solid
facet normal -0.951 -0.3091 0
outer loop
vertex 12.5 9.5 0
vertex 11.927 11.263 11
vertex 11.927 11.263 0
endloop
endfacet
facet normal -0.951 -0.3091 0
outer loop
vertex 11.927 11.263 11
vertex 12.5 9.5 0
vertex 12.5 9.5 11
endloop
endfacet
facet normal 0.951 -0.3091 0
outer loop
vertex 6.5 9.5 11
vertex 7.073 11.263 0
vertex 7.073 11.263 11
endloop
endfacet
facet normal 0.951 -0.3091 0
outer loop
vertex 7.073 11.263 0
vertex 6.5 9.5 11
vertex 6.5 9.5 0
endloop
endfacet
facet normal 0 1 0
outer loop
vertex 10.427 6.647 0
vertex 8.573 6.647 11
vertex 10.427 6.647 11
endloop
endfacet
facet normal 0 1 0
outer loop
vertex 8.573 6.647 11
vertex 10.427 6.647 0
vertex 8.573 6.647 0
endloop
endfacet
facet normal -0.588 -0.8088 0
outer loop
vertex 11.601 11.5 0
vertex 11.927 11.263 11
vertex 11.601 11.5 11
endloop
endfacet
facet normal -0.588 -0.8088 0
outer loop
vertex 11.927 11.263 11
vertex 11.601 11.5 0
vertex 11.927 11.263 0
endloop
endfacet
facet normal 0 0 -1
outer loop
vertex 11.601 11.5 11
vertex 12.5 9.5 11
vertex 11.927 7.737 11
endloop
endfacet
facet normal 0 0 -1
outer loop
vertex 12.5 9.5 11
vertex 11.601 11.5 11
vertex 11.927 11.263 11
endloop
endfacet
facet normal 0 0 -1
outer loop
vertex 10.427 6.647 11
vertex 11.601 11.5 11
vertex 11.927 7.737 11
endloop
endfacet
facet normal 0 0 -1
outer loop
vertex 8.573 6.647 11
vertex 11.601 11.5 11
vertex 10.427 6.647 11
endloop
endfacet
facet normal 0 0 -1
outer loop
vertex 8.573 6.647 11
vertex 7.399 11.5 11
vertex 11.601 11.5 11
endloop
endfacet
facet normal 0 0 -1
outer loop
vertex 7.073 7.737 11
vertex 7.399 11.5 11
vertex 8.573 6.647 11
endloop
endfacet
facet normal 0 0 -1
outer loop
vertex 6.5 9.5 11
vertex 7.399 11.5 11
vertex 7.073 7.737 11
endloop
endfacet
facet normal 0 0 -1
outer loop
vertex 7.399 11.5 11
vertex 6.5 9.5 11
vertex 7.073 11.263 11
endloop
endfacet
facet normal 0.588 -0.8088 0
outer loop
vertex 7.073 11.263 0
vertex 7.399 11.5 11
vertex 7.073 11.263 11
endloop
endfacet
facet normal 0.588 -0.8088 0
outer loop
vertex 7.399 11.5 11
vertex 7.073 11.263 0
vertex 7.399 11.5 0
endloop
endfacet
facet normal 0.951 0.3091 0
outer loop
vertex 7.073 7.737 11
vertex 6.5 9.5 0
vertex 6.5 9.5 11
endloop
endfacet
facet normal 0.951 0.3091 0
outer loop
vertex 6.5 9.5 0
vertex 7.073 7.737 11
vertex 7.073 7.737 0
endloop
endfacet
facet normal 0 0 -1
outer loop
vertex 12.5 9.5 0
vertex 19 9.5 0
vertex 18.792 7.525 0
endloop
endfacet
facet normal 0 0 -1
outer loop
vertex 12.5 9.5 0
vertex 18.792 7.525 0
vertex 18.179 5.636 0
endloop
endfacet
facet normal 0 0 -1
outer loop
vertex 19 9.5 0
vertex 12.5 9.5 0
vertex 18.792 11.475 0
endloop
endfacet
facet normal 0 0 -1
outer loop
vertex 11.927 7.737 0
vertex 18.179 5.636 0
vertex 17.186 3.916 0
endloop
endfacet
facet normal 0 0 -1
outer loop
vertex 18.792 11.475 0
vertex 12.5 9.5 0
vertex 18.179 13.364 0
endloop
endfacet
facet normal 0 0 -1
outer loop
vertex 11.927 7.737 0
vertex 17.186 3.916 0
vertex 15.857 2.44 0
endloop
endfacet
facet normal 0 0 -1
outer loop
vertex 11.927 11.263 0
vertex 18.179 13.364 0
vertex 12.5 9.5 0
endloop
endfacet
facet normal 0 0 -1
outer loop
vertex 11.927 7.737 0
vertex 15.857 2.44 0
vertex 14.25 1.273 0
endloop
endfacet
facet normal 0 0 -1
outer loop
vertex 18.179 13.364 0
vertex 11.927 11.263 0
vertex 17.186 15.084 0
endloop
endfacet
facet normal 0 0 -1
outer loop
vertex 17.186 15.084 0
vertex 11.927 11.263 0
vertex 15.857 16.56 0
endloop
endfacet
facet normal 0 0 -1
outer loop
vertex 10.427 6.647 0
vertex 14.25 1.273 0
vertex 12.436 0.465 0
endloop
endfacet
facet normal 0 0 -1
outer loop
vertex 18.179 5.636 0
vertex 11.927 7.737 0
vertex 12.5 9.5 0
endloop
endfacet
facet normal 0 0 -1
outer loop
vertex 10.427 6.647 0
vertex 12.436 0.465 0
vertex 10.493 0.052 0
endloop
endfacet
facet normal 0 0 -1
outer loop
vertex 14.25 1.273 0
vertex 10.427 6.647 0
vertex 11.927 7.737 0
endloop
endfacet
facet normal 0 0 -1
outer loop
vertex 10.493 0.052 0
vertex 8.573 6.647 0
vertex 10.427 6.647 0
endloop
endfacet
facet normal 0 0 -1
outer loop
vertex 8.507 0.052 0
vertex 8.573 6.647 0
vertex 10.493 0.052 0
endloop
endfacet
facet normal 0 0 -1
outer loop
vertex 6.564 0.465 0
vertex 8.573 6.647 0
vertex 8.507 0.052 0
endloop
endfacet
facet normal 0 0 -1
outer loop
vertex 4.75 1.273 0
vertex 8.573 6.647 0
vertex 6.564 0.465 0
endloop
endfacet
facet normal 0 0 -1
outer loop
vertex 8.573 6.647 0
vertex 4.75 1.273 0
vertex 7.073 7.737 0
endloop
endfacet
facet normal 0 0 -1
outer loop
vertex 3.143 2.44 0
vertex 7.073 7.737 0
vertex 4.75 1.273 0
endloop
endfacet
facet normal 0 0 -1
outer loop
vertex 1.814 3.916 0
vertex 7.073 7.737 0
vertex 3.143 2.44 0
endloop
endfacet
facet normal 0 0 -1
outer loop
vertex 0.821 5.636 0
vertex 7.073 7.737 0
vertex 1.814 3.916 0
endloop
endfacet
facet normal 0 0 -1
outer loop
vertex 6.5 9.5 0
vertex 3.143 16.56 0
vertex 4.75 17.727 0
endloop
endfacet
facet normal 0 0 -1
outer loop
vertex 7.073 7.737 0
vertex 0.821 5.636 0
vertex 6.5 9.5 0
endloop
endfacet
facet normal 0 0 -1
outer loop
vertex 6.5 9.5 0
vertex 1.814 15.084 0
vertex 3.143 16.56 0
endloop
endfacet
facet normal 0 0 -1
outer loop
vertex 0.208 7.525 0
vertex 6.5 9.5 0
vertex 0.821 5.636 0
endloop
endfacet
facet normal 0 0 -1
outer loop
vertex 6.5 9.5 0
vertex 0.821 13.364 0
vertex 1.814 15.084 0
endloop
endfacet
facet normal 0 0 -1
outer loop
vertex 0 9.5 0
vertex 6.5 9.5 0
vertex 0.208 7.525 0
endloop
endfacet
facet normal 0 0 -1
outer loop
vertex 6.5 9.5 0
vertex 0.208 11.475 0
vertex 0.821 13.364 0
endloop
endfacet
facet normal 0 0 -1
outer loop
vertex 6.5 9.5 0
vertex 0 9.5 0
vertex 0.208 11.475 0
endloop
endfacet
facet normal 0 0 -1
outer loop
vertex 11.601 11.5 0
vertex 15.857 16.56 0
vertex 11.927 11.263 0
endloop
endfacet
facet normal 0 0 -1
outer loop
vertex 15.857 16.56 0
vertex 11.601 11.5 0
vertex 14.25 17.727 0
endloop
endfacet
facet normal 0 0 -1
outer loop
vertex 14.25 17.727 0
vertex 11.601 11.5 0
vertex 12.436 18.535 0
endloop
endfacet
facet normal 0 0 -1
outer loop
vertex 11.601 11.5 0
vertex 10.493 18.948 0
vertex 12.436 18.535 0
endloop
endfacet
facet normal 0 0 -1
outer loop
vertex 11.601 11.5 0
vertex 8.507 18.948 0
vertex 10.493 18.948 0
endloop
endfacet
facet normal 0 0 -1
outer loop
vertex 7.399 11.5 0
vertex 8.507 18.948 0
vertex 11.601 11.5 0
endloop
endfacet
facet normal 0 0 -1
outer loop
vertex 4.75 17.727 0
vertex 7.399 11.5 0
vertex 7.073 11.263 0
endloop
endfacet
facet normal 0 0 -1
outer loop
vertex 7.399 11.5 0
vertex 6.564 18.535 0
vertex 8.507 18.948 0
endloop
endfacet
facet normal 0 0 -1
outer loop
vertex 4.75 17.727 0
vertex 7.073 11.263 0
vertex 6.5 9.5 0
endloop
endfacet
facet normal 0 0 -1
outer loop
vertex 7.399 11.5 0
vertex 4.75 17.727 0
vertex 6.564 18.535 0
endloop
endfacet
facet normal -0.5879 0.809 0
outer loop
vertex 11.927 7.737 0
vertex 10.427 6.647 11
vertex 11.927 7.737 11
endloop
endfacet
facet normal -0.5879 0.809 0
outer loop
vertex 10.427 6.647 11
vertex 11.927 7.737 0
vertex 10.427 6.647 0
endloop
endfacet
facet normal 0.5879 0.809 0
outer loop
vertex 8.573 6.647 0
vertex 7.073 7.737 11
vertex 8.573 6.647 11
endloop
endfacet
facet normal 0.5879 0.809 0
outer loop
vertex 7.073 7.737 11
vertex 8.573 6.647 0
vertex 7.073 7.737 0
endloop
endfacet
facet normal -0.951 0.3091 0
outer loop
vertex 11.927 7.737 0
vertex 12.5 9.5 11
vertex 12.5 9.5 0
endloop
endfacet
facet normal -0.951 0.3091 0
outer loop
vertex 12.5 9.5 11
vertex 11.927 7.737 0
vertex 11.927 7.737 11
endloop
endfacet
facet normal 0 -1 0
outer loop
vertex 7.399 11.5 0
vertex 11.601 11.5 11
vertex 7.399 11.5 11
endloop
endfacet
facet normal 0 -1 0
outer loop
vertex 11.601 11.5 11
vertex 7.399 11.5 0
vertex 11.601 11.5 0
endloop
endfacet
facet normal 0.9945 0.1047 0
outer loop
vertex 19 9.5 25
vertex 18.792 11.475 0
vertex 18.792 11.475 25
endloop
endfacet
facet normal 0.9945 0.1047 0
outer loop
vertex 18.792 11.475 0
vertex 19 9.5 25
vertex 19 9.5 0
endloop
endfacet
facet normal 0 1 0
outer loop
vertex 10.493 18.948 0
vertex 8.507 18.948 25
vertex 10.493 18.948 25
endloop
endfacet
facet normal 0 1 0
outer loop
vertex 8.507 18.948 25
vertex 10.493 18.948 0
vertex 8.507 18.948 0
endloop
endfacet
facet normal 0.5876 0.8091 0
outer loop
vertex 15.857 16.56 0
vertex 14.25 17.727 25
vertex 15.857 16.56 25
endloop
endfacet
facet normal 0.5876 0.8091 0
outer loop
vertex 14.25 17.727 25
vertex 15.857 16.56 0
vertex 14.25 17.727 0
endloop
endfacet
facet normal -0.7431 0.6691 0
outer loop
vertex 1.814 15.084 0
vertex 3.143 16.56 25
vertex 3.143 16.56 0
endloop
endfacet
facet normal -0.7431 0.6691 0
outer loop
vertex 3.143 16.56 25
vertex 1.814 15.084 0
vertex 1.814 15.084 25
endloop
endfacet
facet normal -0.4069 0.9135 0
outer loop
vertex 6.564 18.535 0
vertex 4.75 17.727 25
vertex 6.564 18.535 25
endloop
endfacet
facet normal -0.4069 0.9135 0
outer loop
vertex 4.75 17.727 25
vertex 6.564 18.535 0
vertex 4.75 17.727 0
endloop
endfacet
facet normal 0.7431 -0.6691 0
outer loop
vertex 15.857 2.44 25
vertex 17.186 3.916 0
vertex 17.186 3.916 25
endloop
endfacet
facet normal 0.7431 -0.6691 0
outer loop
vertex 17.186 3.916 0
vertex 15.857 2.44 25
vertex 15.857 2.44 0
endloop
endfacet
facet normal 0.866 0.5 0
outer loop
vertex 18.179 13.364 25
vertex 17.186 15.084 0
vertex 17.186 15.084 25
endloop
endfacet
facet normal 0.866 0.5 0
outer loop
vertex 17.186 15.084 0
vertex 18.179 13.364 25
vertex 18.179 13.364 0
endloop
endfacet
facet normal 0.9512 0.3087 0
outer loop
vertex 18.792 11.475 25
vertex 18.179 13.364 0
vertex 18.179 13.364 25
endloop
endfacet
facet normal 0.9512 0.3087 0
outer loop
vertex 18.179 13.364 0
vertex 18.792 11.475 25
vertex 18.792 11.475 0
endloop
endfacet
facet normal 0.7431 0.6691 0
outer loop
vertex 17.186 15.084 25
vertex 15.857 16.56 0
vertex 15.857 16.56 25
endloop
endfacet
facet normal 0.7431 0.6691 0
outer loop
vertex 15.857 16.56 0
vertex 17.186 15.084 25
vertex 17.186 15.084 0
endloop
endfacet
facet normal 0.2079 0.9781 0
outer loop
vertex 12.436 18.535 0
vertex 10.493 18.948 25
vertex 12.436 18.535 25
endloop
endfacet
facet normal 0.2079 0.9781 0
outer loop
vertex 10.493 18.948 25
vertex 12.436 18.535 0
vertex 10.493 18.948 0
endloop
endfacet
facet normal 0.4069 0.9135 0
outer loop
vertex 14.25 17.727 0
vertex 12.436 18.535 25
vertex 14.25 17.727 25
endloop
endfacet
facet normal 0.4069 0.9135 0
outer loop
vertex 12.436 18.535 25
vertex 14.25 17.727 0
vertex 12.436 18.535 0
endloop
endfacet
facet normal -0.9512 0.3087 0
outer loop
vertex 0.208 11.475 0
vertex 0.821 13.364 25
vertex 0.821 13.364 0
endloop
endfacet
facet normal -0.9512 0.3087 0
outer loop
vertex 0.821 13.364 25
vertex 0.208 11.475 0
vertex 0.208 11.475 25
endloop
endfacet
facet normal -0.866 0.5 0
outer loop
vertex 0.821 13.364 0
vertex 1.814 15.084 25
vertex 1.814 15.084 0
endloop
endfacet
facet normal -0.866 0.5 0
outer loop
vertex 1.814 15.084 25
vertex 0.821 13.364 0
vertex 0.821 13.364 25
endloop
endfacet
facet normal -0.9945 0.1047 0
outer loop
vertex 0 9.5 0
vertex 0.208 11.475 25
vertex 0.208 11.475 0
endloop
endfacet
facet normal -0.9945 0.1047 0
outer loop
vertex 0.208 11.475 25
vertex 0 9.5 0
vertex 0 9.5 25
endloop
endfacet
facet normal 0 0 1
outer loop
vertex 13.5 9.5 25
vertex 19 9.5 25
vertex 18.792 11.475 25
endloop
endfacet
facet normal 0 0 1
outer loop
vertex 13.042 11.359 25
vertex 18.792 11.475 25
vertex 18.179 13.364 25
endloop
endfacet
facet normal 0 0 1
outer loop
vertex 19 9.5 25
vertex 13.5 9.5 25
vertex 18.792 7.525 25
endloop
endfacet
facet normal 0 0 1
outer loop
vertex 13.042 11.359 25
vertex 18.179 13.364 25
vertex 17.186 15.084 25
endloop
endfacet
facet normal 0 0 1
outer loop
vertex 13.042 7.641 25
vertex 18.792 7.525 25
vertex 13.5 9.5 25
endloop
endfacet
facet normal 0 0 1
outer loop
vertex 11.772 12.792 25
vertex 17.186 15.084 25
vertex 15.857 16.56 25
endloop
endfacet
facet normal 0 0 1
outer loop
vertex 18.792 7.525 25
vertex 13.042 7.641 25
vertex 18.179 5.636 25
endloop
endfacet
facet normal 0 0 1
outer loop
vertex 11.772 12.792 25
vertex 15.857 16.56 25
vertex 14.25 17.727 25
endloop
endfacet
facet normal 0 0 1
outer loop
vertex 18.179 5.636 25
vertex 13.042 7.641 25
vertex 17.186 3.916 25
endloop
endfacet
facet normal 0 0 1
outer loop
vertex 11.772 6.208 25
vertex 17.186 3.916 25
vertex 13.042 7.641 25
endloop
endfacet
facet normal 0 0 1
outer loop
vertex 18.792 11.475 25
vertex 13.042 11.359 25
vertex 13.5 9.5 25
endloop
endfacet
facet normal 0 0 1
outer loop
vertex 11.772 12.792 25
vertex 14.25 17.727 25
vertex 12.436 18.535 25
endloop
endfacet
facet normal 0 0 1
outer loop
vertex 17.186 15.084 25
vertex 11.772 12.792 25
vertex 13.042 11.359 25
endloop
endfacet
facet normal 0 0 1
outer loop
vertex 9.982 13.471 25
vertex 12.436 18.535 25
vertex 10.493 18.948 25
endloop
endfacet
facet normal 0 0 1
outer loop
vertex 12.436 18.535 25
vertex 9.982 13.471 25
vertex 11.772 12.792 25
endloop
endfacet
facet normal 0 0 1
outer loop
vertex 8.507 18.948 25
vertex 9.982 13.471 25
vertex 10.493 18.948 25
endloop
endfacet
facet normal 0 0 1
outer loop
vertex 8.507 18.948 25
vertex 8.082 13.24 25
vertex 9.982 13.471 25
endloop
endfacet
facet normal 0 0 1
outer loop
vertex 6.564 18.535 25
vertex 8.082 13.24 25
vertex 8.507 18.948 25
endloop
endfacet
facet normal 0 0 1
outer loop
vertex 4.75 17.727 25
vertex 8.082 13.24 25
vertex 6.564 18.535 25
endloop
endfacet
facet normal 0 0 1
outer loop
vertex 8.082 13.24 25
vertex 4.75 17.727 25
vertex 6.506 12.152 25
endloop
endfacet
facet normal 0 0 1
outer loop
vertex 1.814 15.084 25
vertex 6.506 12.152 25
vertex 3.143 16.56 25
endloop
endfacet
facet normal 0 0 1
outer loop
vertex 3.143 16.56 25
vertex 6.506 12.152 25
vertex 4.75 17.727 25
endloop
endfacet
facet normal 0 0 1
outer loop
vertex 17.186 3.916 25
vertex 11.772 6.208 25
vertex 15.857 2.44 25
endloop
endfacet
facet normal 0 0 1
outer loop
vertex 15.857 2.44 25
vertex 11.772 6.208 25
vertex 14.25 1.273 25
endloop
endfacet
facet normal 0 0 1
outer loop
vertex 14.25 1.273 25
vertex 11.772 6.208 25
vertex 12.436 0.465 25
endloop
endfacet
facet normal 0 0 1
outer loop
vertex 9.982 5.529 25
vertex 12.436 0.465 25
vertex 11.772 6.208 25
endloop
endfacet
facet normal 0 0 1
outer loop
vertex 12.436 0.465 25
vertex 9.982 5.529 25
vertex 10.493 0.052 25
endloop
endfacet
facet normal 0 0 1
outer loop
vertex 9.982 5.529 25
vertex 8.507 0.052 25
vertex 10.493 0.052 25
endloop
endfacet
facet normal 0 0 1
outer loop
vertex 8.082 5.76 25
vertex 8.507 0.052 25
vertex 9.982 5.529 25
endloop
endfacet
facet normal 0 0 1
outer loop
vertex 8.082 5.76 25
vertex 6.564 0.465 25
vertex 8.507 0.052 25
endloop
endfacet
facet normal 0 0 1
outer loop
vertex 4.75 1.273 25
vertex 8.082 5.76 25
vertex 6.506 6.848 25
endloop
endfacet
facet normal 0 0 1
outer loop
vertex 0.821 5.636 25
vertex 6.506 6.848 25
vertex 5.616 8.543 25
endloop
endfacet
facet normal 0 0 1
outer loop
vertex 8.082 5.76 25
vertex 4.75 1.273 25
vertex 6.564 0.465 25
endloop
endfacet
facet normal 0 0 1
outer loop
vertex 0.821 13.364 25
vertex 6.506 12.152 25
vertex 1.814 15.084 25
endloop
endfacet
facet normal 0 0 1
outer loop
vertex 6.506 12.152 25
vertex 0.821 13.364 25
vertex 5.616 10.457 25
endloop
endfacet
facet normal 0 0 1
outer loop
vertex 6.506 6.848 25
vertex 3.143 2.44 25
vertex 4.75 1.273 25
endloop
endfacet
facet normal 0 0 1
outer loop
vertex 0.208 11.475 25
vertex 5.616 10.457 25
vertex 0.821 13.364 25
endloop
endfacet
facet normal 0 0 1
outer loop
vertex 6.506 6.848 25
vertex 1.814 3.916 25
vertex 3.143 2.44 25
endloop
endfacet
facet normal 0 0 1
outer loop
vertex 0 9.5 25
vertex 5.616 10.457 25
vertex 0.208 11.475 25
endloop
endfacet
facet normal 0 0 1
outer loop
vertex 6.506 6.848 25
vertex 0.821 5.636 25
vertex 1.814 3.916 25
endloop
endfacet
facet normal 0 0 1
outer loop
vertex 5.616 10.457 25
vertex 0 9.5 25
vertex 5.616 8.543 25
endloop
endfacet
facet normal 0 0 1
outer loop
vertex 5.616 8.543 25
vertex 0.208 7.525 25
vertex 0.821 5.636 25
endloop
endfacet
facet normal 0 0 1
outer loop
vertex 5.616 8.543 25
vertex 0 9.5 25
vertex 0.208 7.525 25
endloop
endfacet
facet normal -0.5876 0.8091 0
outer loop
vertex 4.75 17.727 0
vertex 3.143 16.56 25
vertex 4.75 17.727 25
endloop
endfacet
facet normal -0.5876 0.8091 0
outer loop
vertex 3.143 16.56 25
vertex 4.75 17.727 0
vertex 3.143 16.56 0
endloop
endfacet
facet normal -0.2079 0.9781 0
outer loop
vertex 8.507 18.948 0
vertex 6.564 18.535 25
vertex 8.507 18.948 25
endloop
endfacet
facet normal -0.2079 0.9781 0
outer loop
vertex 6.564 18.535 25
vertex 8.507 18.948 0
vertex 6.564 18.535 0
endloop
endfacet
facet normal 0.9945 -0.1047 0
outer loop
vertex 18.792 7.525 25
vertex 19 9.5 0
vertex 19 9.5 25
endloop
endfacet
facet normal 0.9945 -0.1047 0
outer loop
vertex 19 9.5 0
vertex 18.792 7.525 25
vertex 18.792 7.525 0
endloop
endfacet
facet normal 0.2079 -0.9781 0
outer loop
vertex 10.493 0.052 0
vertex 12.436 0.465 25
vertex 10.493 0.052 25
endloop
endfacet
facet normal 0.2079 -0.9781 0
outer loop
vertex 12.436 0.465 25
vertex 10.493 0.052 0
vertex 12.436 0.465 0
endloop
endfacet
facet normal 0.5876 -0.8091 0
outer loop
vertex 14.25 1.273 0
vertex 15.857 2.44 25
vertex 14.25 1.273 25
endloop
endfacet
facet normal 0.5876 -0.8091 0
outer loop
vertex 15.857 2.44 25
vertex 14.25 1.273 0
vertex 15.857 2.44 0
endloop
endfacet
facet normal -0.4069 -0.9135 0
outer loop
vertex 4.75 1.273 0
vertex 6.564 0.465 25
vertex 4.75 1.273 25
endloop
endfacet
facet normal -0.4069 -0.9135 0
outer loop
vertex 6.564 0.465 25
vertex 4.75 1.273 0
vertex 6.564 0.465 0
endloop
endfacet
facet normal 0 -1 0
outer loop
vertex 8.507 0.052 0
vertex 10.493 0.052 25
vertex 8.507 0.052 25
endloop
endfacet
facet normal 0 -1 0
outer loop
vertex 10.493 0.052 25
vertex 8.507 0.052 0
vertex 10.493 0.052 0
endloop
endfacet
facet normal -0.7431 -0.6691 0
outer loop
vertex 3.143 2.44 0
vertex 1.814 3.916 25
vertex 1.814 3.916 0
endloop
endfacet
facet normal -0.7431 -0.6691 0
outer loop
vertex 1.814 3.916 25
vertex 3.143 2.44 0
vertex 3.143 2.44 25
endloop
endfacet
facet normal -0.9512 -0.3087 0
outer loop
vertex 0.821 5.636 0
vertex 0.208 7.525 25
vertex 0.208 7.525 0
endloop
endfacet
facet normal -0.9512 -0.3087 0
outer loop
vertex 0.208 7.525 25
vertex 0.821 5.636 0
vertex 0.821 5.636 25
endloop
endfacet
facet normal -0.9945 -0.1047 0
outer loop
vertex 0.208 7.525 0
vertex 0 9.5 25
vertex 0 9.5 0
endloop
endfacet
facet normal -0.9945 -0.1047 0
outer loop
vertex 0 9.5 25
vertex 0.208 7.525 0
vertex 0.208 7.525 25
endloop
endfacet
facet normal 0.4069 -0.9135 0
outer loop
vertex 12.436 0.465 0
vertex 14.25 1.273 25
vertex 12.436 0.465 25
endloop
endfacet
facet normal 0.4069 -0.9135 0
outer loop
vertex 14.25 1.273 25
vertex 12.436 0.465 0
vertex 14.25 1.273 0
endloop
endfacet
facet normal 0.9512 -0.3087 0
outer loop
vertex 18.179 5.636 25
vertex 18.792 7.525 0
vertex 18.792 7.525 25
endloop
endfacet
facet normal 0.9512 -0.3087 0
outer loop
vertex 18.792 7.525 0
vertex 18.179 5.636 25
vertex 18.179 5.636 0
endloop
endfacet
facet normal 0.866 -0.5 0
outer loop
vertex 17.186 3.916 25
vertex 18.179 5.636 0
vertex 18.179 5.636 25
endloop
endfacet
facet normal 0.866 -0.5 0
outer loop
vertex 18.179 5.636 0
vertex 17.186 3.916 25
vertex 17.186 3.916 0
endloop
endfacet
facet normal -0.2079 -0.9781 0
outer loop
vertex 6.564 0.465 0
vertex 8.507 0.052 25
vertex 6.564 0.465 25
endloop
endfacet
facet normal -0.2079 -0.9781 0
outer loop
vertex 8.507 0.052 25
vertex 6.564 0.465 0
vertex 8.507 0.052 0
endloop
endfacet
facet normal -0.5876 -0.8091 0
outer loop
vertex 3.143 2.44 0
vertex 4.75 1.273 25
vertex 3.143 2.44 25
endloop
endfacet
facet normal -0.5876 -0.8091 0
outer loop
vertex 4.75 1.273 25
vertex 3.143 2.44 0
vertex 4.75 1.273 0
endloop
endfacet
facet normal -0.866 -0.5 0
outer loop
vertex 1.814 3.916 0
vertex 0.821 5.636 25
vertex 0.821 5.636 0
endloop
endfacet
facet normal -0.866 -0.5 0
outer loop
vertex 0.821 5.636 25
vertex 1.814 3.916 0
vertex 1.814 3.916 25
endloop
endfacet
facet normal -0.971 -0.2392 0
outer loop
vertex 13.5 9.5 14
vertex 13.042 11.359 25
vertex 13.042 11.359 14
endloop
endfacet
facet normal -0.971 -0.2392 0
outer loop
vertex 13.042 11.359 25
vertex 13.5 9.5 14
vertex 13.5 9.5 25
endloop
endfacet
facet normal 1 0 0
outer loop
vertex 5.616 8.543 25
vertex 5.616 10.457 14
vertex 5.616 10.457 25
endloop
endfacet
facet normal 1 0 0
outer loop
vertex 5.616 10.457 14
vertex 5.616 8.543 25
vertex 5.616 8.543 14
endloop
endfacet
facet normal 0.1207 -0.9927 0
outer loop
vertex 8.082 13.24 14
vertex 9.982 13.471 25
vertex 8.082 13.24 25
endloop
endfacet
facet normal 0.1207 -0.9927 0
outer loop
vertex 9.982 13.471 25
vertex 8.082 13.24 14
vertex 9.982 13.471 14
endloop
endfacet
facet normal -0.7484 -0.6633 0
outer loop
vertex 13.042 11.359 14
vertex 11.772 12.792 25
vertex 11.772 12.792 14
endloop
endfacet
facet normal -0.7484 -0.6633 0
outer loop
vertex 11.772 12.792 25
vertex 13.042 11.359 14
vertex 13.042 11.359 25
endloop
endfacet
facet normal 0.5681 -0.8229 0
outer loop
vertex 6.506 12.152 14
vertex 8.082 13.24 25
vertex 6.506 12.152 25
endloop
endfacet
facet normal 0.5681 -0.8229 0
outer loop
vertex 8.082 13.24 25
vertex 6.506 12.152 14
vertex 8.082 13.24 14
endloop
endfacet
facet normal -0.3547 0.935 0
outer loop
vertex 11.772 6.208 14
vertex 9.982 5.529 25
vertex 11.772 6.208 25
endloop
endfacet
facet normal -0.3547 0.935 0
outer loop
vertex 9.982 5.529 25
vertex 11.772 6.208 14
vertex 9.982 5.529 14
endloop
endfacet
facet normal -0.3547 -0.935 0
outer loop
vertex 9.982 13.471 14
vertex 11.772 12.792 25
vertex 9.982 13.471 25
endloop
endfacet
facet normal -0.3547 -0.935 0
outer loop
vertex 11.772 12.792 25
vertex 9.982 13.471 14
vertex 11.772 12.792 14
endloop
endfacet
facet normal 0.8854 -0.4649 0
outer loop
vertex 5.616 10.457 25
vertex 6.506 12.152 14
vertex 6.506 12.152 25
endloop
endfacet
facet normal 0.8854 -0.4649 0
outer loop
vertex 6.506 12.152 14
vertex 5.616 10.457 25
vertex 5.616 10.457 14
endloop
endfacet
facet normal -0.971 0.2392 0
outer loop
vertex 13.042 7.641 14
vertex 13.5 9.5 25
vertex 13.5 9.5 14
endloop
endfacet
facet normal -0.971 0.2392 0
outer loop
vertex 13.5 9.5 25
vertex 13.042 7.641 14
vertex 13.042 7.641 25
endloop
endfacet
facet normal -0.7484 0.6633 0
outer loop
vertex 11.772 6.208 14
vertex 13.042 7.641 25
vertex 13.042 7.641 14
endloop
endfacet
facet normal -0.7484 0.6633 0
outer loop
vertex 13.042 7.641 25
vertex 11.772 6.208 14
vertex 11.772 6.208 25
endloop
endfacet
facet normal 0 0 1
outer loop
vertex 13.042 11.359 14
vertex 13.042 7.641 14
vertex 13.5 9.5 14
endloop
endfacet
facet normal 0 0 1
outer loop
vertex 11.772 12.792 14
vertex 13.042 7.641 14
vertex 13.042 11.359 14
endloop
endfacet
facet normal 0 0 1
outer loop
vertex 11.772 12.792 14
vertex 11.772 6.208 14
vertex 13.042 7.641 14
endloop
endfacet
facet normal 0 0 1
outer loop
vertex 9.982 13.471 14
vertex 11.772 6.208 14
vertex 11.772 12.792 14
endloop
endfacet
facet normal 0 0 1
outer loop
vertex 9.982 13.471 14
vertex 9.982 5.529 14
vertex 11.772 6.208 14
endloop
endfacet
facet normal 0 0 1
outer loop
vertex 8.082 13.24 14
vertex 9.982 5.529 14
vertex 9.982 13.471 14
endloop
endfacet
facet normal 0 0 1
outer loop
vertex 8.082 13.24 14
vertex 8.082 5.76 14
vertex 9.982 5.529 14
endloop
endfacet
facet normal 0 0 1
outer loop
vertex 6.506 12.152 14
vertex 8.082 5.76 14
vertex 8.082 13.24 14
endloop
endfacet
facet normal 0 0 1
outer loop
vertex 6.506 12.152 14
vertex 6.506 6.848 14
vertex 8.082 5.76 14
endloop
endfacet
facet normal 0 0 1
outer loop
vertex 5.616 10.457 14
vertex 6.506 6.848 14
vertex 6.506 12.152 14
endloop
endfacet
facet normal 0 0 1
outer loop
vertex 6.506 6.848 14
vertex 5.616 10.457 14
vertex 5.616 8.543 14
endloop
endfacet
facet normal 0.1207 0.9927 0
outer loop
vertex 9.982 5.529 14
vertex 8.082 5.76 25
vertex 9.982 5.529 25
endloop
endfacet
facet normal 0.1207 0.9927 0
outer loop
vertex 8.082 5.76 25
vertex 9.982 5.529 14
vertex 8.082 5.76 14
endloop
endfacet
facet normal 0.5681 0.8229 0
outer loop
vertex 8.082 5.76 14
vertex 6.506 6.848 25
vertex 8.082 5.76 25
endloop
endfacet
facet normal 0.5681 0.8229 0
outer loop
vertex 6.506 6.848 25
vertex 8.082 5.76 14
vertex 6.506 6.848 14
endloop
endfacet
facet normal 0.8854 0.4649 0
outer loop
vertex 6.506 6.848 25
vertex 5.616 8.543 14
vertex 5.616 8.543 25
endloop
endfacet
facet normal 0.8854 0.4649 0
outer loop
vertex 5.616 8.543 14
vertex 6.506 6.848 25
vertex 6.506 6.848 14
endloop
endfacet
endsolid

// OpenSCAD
height = 25;
vertical_spacing = 3;
cut_height = (height - vertical_spacing) / 2;
diam = 19;
top_diam = 8;
bottom_diam = 6;
center_x = diam / 2;
center_y = diam / 2;

difference()
{
    // Outside cylinder.
    translate([center_x, center_y, height / 2])
        cylinder(height, diam / 2, diam / 2, center = true);
    // Gap for stepper-motor shaft.
    translate([center_x, center_y, 0])
    {
        difference()
        {
            cylinder(cut_height, bottom_diam / 2, bottom_diam / 2, center = false);
            translate([-3, 2, 0])
                cube([10, 10, cut_height], center = false);
        }
    }
    // Gap for lead-screw.
    translate([center_x, center_y, height - cut_height])
        cylinder(cut_height, top_diam / 2, top_diam / 2, center = false);
}
